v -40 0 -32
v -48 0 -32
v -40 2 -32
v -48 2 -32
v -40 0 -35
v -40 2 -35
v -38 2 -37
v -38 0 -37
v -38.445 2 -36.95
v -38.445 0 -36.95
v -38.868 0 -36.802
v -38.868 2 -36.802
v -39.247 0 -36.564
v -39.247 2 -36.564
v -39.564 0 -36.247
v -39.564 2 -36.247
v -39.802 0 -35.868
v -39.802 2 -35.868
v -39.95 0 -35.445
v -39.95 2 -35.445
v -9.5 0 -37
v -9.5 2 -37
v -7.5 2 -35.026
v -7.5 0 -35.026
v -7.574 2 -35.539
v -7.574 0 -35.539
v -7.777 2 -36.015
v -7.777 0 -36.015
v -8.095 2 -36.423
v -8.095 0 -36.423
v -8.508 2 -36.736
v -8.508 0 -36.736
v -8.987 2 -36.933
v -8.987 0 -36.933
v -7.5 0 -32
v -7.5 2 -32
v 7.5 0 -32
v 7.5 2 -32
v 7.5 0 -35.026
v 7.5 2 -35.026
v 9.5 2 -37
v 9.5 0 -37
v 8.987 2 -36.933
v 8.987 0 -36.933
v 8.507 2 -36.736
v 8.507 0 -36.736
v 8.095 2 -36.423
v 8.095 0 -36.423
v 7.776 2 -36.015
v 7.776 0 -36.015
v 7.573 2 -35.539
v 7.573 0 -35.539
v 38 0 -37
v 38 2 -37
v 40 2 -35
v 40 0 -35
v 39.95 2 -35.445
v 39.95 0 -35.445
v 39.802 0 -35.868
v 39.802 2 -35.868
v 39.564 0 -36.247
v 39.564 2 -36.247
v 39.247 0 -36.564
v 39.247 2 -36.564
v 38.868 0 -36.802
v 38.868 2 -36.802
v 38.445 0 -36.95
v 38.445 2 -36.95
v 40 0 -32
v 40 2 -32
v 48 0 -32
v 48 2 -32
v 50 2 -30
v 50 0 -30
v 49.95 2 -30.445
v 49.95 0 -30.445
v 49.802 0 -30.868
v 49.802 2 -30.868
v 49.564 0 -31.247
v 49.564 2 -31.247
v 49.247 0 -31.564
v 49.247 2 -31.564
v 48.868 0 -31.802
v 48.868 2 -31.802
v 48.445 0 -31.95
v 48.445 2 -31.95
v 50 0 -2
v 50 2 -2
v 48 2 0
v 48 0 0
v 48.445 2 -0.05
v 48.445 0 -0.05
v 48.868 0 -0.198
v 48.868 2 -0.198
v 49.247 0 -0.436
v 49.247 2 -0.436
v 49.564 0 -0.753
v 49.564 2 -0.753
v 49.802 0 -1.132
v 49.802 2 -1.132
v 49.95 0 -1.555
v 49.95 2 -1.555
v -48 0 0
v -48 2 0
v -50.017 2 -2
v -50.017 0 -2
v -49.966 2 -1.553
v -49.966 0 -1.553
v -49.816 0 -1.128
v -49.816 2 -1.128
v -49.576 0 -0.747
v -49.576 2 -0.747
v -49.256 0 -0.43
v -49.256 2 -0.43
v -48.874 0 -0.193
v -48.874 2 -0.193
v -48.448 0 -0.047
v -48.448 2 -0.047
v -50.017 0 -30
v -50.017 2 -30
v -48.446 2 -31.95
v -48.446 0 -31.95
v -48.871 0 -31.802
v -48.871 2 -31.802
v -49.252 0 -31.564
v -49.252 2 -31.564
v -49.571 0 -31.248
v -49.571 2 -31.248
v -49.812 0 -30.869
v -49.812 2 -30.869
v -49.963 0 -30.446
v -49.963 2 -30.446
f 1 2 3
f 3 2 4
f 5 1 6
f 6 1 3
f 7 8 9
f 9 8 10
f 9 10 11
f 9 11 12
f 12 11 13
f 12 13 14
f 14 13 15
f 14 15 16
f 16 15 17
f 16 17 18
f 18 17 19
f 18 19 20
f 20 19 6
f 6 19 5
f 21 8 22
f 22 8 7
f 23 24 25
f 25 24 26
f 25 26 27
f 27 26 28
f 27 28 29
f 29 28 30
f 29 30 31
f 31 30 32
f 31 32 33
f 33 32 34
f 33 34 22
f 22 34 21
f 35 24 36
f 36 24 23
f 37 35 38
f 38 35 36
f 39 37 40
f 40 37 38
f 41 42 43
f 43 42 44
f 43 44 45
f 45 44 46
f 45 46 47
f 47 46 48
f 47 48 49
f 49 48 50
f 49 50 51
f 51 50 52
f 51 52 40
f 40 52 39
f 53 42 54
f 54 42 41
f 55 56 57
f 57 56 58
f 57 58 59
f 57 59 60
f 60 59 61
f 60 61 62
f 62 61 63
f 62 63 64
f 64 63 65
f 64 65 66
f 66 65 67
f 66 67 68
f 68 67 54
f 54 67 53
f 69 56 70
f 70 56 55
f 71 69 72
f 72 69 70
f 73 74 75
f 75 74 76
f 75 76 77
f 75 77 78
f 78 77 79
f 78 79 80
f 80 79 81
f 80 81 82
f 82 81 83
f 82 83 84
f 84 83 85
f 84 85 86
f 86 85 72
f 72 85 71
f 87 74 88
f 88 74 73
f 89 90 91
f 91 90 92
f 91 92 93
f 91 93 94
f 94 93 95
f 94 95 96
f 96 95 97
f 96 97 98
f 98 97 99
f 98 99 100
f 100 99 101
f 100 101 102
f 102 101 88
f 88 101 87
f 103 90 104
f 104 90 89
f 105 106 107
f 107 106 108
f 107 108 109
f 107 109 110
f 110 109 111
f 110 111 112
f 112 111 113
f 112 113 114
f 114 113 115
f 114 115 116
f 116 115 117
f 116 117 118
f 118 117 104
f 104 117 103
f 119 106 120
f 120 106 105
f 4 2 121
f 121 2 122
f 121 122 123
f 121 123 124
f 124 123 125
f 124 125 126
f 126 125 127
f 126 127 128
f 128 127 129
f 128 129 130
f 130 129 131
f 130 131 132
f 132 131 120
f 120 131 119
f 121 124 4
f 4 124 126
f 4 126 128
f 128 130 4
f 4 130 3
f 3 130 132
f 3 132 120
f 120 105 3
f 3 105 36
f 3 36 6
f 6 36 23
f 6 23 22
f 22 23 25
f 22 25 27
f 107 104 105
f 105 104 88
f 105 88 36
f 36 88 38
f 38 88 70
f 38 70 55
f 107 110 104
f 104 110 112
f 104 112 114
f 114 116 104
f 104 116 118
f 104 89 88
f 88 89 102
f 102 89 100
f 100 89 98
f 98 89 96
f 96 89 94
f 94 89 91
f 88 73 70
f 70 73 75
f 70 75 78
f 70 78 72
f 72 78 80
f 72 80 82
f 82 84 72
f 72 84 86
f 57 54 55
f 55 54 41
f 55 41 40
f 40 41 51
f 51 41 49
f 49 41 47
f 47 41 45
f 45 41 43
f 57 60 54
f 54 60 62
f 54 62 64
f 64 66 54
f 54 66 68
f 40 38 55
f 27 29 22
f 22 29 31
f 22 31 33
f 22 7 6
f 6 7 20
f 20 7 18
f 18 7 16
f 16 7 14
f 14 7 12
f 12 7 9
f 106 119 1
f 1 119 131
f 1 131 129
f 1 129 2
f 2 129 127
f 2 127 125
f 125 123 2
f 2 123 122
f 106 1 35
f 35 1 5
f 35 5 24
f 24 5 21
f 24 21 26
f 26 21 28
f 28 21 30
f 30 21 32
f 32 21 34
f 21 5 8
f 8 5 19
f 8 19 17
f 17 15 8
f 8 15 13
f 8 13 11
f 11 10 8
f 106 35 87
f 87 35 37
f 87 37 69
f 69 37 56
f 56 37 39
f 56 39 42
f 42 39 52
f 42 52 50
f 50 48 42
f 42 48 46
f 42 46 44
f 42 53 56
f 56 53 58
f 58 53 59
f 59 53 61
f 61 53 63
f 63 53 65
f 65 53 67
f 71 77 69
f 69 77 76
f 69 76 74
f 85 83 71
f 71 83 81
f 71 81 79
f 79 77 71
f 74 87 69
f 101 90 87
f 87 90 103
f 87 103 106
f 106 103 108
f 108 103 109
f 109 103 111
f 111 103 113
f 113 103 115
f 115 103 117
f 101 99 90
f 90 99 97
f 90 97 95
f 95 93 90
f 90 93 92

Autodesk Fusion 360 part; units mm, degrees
sketch "スケッチ1" plane through (0, 0, 0) normal (0, 1, 0) x (1, 0, 0)
  line L0 (-48, 0) -> (48, 0)
  line L1 (-50.0166, 2) -> (-50.0166, 30)
  line L2 (-48, 32) -> (-40, 32)
  line L3 (-40, 32) -> (-40, 35)
  line L4 (-38, 37) -> (-9.5, 37)
  line L5 (50, 2) -> (50, 30)
  line L6 (48, 32) -> (40, 32)
  line L7 (40, 32) -> (40, 35)
  line L8 (38, 37) -> (9.5, 37)
  line L9 (-7.5, 32) -> (7.5, 32)
  arc A0 (-38, 37) -> (-40, 35) centre (-38, 35) ccw
  line L10 (-7.5, 35.0262) -> (-7.5, 32)
  line L11 (7.4996, 35.0262) -> (7.5, 32)
  arc A1 (-48, 32) -> (-50.0166, 30) centre (-48, 29.9833) ccw
  arc A2 (-7.5, 35.0262) -> (-9.5, 37) centre (-9.5, 34.9998) ccw
  arc A3 (9.5, 37) -> (7.4996, 35.0262) centre (9.5, 34.9994) ccw
  arc A4 (40, 35) -> (38, 37) centre (38, 35) ccw
  arc A5 (50, 30) -> (48, 32) centre (48, 30) ccw
  arc A6 (48, 0) -> (50, 2) centre (48, 2) ccw
  arc A7 (-50.0166, 2) -> (-48, 0) centre (-48.0165, 2) ccw
  dimension "d1" = 96
  dimension "d2" = 28
  dimension "d3" = 8
  dimension "d4" = 28.5
  dimension "d5" = 28
  dimension "d6" = 8
  dimension "d7" = 28.5
extrude "押し出し1" add sketch "スケッチ1" along normal blind 2
